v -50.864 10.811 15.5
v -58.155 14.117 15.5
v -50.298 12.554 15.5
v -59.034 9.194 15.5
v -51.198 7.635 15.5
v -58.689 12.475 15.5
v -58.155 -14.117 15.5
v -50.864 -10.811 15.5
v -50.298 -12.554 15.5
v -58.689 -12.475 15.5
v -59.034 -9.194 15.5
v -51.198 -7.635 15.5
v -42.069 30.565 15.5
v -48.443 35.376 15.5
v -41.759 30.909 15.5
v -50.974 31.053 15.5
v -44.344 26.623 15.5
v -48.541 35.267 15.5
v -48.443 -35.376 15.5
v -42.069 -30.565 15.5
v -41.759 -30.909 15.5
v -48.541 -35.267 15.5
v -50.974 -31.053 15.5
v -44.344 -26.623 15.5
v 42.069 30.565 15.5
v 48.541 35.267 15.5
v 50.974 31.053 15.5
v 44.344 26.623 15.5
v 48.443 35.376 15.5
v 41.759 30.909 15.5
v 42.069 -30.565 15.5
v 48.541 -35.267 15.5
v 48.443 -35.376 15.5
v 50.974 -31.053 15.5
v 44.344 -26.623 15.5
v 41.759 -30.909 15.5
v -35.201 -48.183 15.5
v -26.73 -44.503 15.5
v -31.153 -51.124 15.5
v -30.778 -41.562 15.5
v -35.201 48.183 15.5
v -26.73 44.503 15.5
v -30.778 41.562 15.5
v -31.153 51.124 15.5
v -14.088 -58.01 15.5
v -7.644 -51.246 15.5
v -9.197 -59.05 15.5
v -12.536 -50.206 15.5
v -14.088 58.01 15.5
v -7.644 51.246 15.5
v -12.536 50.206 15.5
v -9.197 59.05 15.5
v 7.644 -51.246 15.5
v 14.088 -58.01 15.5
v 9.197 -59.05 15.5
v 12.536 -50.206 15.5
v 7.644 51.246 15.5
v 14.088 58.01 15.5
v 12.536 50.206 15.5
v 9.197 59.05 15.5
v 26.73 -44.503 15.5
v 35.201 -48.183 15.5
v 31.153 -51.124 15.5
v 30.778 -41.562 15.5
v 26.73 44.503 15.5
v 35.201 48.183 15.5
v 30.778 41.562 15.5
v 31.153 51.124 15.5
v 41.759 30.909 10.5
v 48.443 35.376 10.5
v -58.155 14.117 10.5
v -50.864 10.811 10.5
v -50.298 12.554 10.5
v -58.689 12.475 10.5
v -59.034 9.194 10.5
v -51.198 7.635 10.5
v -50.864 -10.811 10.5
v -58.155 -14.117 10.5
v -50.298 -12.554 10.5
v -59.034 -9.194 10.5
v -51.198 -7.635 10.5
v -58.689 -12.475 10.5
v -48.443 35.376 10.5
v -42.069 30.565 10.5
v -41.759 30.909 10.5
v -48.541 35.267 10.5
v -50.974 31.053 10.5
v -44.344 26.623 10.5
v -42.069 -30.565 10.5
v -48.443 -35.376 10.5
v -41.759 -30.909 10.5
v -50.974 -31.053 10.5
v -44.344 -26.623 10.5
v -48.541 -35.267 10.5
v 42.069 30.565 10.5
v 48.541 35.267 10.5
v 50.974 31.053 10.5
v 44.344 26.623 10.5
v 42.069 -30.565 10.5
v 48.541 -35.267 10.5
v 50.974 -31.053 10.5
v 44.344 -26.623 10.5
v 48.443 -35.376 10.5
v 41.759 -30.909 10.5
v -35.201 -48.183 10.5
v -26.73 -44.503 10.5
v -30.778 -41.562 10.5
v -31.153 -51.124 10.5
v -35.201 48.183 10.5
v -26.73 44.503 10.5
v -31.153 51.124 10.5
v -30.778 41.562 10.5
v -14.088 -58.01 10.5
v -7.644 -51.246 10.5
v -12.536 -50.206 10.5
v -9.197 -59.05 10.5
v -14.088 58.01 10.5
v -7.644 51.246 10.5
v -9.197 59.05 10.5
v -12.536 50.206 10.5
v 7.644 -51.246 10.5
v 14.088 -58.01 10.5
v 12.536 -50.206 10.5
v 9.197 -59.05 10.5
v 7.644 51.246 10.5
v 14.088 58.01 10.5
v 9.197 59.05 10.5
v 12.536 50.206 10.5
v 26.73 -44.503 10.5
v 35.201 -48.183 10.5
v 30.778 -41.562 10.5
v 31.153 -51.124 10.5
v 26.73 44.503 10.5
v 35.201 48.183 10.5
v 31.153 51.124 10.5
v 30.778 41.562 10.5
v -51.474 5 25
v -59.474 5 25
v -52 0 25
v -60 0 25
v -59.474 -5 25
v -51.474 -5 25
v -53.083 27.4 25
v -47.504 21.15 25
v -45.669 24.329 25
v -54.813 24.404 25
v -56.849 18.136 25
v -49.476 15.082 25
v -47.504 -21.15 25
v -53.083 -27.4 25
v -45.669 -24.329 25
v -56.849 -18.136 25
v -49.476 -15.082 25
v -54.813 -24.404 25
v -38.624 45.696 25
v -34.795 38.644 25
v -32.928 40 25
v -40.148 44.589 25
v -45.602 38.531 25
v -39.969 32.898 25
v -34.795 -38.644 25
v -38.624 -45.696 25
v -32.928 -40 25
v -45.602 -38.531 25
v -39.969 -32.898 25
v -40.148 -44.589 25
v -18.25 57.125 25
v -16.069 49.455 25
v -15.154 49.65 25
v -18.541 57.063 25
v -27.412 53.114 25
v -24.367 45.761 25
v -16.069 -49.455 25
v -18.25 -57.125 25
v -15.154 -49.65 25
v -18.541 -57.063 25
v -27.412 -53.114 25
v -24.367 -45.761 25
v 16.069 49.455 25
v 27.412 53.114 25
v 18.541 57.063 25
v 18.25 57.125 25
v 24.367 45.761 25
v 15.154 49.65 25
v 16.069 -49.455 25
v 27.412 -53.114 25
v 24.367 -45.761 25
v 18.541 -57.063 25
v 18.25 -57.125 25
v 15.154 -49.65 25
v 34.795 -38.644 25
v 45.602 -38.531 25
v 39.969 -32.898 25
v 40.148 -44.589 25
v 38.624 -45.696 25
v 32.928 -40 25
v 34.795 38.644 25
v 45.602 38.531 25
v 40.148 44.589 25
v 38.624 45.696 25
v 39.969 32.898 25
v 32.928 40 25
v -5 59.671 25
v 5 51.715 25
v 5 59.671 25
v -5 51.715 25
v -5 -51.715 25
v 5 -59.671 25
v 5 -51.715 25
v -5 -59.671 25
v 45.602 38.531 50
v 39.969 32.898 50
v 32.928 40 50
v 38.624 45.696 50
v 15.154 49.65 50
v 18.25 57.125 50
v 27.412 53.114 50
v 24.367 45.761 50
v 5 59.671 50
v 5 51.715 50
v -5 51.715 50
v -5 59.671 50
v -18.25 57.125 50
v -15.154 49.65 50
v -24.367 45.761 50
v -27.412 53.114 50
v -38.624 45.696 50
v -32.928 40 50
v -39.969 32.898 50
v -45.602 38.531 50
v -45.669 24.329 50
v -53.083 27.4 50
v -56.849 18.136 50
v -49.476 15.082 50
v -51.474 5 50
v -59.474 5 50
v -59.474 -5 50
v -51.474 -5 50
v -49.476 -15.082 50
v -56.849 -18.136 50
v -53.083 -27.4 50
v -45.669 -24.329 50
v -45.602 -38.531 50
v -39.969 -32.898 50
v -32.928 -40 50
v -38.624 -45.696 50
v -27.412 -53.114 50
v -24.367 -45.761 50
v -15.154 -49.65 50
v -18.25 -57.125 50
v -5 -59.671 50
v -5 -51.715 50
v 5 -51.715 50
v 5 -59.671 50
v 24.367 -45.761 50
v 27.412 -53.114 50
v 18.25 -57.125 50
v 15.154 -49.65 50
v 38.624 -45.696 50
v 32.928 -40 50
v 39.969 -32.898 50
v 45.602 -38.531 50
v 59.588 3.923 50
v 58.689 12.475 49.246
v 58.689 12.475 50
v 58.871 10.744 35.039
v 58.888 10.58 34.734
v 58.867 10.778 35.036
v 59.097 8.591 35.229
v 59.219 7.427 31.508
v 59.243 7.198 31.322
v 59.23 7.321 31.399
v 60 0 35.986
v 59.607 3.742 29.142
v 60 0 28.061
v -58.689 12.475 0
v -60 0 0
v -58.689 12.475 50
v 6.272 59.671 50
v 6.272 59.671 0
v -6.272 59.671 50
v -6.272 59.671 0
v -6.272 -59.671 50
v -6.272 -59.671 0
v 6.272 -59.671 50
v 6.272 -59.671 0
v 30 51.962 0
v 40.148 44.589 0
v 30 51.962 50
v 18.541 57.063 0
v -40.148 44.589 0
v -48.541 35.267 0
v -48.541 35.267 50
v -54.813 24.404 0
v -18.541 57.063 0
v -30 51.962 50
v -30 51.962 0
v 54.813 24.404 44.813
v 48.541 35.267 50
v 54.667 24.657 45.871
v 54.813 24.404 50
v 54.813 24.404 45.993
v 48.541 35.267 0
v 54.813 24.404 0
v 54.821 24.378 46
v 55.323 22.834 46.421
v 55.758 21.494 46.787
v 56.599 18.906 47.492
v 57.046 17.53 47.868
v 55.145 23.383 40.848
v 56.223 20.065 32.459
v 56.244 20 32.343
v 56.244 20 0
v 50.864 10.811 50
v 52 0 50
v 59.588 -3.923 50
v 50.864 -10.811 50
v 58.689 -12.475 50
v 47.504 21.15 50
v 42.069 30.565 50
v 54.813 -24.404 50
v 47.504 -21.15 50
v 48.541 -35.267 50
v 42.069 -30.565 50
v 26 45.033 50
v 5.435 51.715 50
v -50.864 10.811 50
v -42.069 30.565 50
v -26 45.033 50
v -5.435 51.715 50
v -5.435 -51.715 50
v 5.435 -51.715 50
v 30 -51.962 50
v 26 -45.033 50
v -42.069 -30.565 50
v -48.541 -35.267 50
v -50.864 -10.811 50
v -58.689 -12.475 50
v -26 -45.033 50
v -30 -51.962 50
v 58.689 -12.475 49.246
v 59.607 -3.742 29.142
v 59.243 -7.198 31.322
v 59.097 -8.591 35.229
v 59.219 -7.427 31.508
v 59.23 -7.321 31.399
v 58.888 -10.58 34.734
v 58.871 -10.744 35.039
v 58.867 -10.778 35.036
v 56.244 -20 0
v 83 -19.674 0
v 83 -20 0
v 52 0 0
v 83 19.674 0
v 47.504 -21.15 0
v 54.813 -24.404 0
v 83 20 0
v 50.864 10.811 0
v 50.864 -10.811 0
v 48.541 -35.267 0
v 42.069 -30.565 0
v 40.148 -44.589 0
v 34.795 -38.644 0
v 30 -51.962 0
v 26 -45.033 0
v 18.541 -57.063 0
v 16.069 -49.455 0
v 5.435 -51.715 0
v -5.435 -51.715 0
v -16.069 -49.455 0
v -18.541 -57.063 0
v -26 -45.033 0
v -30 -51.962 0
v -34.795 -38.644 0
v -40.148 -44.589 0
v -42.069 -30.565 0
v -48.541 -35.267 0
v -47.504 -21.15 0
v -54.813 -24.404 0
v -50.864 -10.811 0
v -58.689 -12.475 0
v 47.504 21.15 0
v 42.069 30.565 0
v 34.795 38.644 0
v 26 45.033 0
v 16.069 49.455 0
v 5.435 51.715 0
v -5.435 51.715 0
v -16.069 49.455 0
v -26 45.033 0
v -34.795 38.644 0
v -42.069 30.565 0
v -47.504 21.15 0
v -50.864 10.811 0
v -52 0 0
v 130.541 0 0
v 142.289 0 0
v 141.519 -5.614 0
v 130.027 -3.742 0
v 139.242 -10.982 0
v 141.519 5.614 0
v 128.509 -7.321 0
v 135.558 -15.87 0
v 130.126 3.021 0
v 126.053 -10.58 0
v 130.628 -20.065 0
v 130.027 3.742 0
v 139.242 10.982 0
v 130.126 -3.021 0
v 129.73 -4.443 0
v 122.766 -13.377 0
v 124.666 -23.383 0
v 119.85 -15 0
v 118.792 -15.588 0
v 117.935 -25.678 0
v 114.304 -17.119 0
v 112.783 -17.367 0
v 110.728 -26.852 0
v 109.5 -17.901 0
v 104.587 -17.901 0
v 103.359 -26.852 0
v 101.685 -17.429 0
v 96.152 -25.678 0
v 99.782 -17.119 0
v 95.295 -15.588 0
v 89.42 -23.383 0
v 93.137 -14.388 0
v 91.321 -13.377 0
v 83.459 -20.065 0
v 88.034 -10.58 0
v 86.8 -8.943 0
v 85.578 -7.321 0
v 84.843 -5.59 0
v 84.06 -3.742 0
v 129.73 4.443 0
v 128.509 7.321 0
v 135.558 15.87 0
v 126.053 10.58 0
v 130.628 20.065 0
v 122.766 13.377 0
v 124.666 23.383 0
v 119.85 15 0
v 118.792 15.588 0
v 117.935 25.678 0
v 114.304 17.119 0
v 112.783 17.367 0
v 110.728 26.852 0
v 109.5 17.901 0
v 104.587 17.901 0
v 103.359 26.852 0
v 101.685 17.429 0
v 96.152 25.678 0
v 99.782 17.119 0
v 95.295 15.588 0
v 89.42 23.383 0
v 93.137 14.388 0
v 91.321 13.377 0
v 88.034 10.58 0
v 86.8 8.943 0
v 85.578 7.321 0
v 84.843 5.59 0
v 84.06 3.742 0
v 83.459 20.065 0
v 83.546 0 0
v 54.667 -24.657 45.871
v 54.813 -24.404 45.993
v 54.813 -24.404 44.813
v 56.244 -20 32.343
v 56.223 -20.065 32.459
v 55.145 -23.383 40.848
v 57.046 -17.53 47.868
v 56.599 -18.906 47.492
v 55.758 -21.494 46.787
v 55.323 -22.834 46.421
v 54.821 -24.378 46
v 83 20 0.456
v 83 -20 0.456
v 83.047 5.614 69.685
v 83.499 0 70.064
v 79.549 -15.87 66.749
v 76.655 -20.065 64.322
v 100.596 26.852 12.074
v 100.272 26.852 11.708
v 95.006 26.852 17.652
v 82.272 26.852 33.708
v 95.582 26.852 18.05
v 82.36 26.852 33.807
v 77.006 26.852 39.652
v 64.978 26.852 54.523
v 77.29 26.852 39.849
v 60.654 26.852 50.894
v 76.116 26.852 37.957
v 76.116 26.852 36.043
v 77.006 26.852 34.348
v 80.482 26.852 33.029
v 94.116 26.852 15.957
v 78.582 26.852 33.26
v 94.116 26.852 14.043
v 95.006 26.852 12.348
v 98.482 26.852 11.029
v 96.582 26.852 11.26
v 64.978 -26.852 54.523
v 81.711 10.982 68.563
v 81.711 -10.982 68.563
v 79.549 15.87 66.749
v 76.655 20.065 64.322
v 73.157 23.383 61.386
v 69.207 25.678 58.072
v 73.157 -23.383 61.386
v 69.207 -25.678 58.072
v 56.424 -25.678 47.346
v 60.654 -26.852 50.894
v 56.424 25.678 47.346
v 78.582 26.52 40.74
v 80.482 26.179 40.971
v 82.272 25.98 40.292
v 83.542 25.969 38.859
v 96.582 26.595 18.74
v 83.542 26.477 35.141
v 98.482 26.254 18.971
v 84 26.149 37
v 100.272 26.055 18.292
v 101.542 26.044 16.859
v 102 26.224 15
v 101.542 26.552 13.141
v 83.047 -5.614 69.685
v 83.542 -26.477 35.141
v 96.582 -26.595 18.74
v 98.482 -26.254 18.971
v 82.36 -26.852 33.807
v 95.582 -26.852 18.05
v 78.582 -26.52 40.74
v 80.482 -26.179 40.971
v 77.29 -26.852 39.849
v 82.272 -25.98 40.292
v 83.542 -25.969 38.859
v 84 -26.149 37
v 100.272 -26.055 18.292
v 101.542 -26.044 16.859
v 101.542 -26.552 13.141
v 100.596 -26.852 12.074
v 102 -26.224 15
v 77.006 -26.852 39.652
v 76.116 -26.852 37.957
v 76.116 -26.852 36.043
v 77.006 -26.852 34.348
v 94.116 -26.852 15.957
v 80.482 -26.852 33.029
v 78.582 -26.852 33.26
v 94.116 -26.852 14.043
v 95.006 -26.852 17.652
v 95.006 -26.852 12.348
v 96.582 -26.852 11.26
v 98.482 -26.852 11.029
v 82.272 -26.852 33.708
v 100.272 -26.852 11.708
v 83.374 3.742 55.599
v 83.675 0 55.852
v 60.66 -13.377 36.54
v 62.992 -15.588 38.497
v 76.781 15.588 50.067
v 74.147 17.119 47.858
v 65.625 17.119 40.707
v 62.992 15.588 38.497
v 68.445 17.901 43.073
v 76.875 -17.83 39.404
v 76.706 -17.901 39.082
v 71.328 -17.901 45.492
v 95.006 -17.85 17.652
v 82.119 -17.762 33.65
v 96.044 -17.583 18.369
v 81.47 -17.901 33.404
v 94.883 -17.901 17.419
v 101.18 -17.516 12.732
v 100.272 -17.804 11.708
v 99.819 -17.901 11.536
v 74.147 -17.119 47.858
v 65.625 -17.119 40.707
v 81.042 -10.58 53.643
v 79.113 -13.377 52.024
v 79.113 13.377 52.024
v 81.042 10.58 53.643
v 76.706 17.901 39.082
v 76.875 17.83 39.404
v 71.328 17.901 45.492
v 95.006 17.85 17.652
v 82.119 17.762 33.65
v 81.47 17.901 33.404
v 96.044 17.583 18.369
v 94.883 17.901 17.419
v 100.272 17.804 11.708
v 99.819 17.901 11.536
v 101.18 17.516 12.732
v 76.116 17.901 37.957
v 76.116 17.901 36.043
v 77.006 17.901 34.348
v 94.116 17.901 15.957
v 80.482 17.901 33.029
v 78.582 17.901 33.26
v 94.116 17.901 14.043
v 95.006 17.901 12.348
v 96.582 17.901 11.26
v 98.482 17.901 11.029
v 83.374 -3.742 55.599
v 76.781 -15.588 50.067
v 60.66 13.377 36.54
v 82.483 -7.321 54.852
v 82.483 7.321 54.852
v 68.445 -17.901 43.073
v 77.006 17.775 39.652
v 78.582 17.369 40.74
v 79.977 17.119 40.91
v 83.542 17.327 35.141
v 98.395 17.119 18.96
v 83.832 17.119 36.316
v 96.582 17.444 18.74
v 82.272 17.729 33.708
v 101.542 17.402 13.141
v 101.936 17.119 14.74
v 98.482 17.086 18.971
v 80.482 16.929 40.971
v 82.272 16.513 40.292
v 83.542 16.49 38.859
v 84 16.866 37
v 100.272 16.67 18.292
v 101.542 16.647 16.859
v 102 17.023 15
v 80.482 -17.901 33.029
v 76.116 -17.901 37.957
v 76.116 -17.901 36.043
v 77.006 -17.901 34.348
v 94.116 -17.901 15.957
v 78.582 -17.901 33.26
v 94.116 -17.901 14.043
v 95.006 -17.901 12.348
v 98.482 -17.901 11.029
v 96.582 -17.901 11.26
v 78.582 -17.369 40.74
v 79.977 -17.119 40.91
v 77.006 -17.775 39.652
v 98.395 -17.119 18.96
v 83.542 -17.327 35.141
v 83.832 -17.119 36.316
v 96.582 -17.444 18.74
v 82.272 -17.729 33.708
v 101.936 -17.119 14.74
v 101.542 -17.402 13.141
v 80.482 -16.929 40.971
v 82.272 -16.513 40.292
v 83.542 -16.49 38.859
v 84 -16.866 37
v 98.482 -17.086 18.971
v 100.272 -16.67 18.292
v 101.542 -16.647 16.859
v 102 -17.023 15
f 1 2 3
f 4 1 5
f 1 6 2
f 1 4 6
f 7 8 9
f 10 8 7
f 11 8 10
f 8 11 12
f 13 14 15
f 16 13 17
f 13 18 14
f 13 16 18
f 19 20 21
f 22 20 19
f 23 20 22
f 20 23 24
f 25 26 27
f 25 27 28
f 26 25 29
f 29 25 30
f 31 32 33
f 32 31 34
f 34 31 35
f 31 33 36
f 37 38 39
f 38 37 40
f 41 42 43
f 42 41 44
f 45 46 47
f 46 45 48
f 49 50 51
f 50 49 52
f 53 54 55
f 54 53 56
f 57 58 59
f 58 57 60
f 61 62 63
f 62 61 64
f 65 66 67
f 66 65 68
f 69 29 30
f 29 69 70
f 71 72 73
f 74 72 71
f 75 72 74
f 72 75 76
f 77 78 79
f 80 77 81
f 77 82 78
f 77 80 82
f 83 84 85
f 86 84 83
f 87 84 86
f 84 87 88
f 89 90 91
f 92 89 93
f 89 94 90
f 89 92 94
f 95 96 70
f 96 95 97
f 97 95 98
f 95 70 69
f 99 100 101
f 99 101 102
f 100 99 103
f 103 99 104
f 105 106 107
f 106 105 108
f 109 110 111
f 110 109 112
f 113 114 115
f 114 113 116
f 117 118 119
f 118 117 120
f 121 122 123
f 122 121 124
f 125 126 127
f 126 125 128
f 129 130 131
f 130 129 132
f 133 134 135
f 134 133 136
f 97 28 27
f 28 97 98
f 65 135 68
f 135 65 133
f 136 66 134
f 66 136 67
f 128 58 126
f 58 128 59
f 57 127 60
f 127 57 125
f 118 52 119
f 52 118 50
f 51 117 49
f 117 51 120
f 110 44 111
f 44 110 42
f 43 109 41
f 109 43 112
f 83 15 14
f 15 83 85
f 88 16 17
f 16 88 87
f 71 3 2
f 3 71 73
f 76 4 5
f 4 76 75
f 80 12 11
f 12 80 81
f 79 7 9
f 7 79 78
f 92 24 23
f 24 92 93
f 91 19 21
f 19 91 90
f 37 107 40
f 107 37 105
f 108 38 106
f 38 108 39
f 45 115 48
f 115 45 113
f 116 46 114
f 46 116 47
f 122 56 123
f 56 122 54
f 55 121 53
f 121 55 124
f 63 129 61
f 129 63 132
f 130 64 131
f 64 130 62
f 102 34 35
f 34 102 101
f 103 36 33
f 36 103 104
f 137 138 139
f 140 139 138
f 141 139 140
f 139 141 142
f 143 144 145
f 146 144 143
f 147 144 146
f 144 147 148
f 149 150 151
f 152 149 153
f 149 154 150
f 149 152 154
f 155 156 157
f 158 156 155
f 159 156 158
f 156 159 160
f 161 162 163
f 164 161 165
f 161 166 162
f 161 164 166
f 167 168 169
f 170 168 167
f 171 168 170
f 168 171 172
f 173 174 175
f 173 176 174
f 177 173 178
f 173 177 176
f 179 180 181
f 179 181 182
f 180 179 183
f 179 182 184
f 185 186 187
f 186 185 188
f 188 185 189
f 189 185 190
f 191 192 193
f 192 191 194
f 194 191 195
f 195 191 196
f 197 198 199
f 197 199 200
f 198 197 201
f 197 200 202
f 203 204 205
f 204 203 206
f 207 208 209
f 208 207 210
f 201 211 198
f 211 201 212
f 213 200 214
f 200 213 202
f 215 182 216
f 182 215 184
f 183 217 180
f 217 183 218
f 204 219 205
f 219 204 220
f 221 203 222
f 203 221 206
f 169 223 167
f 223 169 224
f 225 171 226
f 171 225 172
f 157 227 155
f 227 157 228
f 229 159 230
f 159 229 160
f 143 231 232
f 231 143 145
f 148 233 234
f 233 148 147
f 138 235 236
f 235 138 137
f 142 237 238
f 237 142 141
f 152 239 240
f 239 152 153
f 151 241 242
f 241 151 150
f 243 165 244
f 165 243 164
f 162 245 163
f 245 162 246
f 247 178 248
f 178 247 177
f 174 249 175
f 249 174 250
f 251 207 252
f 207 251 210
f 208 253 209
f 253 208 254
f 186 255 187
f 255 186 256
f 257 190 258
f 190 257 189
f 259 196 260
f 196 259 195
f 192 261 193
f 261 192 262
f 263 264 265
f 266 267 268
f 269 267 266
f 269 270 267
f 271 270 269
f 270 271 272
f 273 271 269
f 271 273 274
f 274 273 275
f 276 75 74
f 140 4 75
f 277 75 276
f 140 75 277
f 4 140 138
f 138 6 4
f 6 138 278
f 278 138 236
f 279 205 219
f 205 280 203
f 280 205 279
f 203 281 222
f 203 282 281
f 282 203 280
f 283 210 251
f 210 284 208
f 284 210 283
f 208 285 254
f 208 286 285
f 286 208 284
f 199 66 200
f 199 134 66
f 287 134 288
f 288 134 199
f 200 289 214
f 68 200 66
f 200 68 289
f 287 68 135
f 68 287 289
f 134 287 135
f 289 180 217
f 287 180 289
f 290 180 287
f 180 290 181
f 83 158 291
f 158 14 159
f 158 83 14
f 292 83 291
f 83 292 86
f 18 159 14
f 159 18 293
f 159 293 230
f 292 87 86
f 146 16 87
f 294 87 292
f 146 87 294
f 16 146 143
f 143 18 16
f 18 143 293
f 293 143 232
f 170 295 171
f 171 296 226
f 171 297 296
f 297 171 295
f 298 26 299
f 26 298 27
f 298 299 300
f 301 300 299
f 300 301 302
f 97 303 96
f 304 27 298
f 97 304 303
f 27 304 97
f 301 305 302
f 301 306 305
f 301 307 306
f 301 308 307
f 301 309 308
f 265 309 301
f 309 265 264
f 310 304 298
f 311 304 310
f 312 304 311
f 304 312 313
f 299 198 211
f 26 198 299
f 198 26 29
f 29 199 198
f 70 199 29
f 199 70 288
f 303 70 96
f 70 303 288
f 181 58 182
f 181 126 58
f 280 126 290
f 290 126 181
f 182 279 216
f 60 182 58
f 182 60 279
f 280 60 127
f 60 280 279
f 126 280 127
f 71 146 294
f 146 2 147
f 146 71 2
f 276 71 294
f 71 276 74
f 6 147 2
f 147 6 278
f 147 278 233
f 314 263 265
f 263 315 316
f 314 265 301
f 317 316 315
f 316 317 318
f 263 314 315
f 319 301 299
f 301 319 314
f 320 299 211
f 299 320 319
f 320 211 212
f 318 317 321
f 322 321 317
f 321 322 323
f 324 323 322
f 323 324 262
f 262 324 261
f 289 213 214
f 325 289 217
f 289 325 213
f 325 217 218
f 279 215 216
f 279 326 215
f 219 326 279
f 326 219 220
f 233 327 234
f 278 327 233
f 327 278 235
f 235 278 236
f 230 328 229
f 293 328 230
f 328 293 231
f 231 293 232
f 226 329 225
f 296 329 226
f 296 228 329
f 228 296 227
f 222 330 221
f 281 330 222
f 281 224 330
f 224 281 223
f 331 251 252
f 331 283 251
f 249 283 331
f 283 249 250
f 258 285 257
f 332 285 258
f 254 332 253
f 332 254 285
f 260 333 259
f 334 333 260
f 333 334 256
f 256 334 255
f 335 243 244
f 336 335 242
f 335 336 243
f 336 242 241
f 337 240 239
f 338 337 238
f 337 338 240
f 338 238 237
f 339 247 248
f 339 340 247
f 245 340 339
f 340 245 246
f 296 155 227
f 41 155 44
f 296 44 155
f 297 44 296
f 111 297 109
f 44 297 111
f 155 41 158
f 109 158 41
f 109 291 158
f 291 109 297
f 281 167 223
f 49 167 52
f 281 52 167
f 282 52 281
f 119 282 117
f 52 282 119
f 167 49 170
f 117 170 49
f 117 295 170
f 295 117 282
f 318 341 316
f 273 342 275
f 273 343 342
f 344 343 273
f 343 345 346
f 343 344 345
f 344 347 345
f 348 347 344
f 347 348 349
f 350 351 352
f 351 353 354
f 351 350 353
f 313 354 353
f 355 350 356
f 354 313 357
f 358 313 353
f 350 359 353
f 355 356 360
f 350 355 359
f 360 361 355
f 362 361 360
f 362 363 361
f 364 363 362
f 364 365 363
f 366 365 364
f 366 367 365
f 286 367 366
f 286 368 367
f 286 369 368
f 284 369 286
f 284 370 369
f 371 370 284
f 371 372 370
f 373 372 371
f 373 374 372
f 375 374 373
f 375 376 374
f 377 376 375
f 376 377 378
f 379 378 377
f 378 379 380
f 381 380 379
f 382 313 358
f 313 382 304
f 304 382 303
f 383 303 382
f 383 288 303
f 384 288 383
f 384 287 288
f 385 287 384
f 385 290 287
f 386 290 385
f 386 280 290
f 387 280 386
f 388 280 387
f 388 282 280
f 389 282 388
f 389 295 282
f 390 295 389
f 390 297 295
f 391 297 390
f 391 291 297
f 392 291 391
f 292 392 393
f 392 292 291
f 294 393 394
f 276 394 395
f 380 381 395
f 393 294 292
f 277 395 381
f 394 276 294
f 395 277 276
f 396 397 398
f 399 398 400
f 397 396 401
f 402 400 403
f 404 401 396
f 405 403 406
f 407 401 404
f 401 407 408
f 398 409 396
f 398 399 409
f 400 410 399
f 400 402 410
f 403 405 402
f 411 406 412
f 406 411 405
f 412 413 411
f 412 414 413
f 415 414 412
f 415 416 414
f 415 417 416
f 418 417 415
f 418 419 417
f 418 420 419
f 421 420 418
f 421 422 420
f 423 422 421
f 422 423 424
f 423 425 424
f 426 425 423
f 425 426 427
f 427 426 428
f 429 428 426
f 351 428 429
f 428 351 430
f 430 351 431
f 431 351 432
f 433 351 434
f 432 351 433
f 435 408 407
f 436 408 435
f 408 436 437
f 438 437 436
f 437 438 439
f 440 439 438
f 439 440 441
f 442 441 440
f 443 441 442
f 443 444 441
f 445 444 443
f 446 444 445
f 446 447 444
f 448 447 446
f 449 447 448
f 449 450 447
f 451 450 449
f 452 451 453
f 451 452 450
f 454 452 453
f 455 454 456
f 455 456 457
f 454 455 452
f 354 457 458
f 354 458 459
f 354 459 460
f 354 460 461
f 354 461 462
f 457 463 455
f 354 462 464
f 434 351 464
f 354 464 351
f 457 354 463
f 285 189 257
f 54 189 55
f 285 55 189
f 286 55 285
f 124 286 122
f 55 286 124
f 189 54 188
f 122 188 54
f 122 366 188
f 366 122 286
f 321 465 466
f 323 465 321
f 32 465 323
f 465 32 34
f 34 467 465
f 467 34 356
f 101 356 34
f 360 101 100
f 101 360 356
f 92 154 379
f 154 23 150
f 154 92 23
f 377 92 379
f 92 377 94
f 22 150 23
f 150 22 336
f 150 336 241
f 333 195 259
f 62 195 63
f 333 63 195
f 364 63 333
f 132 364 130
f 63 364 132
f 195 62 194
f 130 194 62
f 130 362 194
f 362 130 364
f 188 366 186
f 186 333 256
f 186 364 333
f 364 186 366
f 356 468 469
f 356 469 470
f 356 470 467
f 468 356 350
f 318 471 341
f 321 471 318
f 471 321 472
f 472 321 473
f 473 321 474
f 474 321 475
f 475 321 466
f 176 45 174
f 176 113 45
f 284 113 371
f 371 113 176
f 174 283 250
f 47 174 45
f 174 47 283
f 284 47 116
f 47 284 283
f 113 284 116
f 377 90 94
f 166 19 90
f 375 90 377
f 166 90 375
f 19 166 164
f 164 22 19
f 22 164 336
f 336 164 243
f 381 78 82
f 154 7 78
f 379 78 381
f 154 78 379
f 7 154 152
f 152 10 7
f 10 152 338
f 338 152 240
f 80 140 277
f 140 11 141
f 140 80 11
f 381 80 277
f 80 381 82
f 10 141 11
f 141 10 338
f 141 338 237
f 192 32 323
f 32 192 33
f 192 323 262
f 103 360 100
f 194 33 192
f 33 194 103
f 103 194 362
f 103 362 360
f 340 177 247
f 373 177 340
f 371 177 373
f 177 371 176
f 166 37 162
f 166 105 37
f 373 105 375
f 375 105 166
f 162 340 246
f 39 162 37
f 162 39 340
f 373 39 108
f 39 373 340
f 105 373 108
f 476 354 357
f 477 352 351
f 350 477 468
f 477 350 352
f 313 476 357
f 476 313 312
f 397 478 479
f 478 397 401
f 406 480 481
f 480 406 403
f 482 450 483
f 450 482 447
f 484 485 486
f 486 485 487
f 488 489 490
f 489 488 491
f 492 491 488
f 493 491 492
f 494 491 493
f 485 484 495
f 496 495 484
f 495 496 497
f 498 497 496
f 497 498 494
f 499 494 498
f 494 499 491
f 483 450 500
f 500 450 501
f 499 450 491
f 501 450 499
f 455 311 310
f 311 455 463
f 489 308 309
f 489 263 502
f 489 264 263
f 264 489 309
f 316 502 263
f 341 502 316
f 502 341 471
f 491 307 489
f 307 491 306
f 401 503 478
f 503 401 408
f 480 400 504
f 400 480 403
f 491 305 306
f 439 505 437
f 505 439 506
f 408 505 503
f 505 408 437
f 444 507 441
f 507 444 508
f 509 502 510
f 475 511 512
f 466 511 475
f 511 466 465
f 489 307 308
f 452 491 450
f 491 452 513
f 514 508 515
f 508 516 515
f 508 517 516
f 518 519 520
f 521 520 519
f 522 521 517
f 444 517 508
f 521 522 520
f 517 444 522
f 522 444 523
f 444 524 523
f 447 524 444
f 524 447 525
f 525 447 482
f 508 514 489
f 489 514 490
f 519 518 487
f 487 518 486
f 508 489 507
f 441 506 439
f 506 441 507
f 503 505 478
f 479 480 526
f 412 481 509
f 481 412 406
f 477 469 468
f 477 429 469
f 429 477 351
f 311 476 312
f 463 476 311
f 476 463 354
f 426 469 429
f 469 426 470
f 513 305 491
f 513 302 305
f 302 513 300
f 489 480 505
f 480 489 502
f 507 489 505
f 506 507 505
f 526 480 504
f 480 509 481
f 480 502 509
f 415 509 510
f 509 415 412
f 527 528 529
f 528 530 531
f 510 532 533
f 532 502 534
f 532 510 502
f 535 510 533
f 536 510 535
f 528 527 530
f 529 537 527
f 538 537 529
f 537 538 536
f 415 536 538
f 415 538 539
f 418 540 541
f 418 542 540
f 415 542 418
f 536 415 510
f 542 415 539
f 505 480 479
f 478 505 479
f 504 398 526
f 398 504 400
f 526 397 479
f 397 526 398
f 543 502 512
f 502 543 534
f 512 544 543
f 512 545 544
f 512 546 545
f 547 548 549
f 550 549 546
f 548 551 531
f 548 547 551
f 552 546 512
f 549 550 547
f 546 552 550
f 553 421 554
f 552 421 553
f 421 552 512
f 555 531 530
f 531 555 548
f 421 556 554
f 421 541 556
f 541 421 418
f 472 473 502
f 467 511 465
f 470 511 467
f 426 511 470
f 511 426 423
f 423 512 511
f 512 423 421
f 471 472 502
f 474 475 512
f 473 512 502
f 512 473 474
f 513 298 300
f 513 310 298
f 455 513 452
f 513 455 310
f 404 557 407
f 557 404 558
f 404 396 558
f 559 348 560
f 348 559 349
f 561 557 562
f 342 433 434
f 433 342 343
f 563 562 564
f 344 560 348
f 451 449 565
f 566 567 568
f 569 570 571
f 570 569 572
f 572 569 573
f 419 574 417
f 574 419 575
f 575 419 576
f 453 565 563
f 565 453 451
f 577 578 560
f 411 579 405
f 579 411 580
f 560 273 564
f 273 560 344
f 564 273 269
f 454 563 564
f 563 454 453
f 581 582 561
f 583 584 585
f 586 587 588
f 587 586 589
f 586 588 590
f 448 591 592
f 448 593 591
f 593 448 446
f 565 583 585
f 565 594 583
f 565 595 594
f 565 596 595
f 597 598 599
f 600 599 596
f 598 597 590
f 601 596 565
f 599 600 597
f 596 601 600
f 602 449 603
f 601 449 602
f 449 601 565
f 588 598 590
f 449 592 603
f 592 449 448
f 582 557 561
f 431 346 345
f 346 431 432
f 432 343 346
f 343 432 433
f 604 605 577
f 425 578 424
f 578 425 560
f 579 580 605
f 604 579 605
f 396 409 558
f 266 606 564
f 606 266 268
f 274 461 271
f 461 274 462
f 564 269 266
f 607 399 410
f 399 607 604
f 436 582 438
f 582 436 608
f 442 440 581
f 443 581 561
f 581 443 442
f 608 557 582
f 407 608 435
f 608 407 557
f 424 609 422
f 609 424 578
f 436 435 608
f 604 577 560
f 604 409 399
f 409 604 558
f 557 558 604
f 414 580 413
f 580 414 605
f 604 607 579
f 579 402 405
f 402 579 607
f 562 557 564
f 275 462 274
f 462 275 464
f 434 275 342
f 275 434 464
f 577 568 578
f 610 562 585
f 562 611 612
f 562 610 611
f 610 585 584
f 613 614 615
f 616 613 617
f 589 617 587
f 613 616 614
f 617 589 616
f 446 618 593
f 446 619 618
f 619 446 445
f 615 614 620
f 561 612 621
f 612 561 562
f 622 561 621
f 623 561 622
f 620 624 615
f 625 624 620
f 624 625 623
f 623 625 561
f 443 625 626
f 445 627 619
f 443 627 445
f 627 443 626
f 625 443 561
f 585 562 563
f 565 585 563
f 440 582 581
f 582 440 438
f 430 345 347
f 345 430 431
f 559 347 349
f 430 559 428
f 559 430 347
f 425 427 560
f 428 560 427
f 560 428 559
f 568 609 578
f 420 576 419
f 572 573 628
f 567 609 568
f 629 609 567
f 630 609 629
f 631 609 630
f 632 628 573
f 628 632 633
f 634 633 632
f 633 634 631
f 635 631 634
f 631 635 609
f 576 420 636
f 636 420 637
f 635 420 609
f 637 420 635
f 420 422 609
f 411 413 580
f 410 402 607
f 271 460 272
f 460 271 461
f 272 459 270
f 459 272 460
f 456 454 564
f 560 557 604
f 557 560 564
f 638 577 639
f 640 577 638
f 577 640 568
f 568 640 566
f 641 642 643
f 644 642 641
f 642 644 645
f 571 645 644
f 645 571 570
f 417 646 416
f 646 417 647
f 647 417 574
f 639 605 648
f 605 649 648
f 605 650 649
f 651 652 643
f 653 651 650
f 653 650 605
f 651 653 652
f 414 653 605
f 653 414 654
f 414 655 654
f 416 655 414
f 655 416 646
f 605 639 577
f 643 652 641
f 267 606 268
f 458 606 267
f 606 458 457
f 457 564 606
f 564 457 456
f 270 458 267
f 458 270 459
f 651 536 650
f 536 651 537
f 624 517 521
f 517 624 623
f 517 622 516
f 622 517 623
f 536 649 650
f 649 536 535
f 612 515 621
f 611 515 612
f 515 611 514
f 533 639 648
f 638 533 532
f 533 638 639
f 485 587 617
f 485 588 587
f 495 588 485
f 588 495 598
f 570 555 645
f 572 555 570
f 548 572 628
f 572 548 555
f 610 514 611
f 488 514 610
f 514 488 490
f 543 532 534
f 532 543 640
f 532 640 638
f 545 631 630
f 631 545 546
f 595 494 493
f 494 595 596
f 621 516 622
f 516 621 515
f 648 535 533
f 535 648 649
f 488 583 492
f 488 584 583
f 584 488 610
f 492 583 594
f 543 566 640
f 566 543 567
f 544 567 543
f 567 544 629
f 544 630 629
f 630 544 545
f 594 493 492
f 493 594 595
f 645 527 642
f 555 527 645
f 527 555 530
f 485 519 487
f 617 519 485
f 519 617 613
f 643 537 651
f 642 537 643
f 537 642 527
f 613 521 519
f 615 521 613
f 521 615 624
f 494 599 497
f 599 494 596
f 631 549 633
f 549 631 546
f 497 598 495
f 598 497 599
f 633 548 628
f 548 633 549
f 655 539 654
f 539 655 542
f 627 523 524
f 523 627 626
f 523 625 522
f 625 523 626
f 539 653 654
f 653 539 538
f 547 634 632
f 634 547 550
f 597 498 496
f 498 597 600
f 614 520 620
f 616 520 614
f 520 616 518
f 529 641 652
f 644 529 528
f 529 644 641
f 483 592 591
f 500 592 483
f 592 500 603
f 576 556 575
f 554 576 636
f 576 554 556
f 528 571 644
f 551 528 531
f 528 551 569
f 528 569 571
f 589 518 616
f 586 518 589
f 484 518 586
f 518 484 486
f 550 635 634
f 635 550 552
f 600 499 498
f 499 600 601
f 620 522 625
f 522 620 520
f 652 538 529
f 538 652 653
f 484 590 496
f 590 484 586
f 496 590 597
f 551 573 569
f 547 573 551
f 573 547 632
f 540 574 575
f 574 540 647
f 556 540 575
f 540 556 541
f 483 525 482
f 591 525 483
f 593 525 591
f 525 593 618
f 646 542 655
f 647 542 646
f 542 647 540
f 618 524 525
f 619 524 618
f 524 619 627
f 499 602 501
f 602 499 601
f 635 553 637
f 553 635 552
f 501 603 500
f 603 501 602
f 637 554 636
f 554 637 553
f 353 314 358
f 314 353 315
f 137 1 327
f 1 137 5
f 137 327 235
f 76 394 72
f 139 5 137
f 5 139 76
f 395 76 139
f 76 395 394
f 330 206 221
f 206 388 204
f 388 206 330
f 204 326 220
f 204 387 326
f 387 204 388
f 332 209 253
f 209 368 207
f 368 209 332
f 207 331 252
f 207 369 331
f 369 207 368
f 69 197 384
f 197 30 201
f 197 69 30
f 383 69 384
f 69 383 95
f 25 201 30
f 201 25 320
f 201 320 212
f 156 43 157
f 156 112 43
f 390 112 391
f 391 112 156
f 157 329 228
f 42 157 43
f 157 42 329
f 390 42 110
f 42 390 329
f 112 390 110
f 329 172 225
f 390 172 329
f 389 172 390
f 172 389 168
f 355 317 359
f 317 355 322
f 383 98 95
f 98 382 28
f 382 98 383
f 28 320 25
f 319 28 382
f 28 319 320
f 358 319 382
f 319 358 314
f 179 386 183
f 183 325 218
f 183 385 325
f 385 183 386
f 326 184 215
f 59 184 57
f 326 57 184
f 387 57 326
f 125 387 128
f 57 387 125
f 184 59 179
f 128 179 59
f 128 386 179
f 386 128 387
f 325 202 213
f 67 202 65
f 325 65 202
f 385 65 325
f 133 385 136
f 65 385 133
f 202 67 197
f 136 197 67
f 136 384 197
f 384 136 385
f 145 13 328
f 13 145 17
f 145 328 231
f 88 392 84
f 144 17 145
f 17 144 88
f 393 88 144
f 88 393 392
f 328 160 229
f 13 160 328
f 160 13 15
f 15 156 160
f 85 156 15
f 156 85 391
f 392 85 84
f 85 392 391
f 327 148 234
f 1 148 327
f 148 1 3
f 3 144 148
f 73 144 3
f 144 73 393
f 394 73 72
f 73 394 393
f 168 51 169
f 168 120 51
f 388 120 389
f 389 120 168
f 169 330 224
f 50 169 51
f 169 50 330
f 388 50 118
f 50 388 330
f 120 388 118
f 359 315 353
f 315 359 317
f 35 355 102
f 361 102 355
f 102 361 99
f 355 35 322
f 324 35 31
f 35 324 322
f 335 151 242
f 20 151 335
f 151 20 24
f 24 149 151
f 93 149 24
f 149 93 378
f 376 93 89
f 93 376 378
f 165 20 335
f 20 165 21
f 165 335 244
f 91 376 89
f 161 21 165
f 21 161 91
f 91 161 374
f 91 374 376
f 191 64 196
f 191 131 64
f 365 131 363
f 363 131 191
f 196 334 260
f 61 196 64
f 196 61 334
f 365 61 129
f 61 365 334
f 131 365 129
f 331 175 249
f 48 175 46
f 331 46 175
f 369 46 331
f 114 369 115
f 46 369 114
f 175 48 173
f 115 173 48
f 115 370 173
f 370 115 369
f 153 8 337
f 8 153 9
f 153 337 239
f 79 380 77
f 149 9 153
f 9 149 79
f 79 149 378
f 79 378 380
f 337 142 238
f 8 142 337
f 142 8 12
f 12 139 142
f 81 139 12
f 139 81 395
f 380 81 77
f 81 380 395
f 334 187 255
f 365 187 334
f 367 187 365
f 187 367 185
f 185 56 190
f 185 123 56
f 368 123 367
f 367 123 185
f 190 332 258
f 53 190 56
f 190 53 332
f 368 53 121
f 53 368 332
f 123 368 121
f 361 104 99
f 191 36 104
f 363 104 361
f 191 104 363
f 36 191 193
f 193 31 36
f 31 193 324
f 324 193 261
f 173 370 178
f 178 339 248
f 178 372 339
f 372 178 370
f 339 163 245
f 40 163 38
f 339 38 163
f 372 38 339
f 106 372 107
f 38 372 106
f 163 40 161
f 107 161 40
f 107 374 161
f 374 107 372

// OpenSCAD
difference(){ 
    union(){
        difference(){
            union(){
                cylinder(50,60,60,[0,0,0]);
            };
            union(){
                for (a=[1:14]){
                    rotate([0,0,(a+0.5)*360/16]){
                        translate([0,-5/2.,21/2.]) cube([100,5,5]);
                    };
                };
                for (a=[2:14]){
                    rotate([0,0,a*360/16]){    
                        translate([0,-10/2.,25]) cube([100,10,50]);
                    };
                };
            };
        };
        difference(){
            union(){
                translate([51,-20,0]) cube([32,40,40]);
                rotate([0,-40,0]) translate([82,0,-100]) cylinder(100,27,27,[0,0,0]);
            }
            union(){
                rotate([0,-40,0]) translate([82,0,-101]) cylinder(90,18,18,[0,0,0]);
                translate([80,50,37]) rotate([90,0,0]) cylinder(100,4,4,[0,0,0]);
                translate([98,50,15]) rotate([90,0,0]) cylinder(100,4,4,[0,0,0]);
            }
        }
    };
    union(){
         cylinder(50,52,52,[0,0,0]);
         translate([-200,-200,-100]) cube([400,400,100]);
    };
};
